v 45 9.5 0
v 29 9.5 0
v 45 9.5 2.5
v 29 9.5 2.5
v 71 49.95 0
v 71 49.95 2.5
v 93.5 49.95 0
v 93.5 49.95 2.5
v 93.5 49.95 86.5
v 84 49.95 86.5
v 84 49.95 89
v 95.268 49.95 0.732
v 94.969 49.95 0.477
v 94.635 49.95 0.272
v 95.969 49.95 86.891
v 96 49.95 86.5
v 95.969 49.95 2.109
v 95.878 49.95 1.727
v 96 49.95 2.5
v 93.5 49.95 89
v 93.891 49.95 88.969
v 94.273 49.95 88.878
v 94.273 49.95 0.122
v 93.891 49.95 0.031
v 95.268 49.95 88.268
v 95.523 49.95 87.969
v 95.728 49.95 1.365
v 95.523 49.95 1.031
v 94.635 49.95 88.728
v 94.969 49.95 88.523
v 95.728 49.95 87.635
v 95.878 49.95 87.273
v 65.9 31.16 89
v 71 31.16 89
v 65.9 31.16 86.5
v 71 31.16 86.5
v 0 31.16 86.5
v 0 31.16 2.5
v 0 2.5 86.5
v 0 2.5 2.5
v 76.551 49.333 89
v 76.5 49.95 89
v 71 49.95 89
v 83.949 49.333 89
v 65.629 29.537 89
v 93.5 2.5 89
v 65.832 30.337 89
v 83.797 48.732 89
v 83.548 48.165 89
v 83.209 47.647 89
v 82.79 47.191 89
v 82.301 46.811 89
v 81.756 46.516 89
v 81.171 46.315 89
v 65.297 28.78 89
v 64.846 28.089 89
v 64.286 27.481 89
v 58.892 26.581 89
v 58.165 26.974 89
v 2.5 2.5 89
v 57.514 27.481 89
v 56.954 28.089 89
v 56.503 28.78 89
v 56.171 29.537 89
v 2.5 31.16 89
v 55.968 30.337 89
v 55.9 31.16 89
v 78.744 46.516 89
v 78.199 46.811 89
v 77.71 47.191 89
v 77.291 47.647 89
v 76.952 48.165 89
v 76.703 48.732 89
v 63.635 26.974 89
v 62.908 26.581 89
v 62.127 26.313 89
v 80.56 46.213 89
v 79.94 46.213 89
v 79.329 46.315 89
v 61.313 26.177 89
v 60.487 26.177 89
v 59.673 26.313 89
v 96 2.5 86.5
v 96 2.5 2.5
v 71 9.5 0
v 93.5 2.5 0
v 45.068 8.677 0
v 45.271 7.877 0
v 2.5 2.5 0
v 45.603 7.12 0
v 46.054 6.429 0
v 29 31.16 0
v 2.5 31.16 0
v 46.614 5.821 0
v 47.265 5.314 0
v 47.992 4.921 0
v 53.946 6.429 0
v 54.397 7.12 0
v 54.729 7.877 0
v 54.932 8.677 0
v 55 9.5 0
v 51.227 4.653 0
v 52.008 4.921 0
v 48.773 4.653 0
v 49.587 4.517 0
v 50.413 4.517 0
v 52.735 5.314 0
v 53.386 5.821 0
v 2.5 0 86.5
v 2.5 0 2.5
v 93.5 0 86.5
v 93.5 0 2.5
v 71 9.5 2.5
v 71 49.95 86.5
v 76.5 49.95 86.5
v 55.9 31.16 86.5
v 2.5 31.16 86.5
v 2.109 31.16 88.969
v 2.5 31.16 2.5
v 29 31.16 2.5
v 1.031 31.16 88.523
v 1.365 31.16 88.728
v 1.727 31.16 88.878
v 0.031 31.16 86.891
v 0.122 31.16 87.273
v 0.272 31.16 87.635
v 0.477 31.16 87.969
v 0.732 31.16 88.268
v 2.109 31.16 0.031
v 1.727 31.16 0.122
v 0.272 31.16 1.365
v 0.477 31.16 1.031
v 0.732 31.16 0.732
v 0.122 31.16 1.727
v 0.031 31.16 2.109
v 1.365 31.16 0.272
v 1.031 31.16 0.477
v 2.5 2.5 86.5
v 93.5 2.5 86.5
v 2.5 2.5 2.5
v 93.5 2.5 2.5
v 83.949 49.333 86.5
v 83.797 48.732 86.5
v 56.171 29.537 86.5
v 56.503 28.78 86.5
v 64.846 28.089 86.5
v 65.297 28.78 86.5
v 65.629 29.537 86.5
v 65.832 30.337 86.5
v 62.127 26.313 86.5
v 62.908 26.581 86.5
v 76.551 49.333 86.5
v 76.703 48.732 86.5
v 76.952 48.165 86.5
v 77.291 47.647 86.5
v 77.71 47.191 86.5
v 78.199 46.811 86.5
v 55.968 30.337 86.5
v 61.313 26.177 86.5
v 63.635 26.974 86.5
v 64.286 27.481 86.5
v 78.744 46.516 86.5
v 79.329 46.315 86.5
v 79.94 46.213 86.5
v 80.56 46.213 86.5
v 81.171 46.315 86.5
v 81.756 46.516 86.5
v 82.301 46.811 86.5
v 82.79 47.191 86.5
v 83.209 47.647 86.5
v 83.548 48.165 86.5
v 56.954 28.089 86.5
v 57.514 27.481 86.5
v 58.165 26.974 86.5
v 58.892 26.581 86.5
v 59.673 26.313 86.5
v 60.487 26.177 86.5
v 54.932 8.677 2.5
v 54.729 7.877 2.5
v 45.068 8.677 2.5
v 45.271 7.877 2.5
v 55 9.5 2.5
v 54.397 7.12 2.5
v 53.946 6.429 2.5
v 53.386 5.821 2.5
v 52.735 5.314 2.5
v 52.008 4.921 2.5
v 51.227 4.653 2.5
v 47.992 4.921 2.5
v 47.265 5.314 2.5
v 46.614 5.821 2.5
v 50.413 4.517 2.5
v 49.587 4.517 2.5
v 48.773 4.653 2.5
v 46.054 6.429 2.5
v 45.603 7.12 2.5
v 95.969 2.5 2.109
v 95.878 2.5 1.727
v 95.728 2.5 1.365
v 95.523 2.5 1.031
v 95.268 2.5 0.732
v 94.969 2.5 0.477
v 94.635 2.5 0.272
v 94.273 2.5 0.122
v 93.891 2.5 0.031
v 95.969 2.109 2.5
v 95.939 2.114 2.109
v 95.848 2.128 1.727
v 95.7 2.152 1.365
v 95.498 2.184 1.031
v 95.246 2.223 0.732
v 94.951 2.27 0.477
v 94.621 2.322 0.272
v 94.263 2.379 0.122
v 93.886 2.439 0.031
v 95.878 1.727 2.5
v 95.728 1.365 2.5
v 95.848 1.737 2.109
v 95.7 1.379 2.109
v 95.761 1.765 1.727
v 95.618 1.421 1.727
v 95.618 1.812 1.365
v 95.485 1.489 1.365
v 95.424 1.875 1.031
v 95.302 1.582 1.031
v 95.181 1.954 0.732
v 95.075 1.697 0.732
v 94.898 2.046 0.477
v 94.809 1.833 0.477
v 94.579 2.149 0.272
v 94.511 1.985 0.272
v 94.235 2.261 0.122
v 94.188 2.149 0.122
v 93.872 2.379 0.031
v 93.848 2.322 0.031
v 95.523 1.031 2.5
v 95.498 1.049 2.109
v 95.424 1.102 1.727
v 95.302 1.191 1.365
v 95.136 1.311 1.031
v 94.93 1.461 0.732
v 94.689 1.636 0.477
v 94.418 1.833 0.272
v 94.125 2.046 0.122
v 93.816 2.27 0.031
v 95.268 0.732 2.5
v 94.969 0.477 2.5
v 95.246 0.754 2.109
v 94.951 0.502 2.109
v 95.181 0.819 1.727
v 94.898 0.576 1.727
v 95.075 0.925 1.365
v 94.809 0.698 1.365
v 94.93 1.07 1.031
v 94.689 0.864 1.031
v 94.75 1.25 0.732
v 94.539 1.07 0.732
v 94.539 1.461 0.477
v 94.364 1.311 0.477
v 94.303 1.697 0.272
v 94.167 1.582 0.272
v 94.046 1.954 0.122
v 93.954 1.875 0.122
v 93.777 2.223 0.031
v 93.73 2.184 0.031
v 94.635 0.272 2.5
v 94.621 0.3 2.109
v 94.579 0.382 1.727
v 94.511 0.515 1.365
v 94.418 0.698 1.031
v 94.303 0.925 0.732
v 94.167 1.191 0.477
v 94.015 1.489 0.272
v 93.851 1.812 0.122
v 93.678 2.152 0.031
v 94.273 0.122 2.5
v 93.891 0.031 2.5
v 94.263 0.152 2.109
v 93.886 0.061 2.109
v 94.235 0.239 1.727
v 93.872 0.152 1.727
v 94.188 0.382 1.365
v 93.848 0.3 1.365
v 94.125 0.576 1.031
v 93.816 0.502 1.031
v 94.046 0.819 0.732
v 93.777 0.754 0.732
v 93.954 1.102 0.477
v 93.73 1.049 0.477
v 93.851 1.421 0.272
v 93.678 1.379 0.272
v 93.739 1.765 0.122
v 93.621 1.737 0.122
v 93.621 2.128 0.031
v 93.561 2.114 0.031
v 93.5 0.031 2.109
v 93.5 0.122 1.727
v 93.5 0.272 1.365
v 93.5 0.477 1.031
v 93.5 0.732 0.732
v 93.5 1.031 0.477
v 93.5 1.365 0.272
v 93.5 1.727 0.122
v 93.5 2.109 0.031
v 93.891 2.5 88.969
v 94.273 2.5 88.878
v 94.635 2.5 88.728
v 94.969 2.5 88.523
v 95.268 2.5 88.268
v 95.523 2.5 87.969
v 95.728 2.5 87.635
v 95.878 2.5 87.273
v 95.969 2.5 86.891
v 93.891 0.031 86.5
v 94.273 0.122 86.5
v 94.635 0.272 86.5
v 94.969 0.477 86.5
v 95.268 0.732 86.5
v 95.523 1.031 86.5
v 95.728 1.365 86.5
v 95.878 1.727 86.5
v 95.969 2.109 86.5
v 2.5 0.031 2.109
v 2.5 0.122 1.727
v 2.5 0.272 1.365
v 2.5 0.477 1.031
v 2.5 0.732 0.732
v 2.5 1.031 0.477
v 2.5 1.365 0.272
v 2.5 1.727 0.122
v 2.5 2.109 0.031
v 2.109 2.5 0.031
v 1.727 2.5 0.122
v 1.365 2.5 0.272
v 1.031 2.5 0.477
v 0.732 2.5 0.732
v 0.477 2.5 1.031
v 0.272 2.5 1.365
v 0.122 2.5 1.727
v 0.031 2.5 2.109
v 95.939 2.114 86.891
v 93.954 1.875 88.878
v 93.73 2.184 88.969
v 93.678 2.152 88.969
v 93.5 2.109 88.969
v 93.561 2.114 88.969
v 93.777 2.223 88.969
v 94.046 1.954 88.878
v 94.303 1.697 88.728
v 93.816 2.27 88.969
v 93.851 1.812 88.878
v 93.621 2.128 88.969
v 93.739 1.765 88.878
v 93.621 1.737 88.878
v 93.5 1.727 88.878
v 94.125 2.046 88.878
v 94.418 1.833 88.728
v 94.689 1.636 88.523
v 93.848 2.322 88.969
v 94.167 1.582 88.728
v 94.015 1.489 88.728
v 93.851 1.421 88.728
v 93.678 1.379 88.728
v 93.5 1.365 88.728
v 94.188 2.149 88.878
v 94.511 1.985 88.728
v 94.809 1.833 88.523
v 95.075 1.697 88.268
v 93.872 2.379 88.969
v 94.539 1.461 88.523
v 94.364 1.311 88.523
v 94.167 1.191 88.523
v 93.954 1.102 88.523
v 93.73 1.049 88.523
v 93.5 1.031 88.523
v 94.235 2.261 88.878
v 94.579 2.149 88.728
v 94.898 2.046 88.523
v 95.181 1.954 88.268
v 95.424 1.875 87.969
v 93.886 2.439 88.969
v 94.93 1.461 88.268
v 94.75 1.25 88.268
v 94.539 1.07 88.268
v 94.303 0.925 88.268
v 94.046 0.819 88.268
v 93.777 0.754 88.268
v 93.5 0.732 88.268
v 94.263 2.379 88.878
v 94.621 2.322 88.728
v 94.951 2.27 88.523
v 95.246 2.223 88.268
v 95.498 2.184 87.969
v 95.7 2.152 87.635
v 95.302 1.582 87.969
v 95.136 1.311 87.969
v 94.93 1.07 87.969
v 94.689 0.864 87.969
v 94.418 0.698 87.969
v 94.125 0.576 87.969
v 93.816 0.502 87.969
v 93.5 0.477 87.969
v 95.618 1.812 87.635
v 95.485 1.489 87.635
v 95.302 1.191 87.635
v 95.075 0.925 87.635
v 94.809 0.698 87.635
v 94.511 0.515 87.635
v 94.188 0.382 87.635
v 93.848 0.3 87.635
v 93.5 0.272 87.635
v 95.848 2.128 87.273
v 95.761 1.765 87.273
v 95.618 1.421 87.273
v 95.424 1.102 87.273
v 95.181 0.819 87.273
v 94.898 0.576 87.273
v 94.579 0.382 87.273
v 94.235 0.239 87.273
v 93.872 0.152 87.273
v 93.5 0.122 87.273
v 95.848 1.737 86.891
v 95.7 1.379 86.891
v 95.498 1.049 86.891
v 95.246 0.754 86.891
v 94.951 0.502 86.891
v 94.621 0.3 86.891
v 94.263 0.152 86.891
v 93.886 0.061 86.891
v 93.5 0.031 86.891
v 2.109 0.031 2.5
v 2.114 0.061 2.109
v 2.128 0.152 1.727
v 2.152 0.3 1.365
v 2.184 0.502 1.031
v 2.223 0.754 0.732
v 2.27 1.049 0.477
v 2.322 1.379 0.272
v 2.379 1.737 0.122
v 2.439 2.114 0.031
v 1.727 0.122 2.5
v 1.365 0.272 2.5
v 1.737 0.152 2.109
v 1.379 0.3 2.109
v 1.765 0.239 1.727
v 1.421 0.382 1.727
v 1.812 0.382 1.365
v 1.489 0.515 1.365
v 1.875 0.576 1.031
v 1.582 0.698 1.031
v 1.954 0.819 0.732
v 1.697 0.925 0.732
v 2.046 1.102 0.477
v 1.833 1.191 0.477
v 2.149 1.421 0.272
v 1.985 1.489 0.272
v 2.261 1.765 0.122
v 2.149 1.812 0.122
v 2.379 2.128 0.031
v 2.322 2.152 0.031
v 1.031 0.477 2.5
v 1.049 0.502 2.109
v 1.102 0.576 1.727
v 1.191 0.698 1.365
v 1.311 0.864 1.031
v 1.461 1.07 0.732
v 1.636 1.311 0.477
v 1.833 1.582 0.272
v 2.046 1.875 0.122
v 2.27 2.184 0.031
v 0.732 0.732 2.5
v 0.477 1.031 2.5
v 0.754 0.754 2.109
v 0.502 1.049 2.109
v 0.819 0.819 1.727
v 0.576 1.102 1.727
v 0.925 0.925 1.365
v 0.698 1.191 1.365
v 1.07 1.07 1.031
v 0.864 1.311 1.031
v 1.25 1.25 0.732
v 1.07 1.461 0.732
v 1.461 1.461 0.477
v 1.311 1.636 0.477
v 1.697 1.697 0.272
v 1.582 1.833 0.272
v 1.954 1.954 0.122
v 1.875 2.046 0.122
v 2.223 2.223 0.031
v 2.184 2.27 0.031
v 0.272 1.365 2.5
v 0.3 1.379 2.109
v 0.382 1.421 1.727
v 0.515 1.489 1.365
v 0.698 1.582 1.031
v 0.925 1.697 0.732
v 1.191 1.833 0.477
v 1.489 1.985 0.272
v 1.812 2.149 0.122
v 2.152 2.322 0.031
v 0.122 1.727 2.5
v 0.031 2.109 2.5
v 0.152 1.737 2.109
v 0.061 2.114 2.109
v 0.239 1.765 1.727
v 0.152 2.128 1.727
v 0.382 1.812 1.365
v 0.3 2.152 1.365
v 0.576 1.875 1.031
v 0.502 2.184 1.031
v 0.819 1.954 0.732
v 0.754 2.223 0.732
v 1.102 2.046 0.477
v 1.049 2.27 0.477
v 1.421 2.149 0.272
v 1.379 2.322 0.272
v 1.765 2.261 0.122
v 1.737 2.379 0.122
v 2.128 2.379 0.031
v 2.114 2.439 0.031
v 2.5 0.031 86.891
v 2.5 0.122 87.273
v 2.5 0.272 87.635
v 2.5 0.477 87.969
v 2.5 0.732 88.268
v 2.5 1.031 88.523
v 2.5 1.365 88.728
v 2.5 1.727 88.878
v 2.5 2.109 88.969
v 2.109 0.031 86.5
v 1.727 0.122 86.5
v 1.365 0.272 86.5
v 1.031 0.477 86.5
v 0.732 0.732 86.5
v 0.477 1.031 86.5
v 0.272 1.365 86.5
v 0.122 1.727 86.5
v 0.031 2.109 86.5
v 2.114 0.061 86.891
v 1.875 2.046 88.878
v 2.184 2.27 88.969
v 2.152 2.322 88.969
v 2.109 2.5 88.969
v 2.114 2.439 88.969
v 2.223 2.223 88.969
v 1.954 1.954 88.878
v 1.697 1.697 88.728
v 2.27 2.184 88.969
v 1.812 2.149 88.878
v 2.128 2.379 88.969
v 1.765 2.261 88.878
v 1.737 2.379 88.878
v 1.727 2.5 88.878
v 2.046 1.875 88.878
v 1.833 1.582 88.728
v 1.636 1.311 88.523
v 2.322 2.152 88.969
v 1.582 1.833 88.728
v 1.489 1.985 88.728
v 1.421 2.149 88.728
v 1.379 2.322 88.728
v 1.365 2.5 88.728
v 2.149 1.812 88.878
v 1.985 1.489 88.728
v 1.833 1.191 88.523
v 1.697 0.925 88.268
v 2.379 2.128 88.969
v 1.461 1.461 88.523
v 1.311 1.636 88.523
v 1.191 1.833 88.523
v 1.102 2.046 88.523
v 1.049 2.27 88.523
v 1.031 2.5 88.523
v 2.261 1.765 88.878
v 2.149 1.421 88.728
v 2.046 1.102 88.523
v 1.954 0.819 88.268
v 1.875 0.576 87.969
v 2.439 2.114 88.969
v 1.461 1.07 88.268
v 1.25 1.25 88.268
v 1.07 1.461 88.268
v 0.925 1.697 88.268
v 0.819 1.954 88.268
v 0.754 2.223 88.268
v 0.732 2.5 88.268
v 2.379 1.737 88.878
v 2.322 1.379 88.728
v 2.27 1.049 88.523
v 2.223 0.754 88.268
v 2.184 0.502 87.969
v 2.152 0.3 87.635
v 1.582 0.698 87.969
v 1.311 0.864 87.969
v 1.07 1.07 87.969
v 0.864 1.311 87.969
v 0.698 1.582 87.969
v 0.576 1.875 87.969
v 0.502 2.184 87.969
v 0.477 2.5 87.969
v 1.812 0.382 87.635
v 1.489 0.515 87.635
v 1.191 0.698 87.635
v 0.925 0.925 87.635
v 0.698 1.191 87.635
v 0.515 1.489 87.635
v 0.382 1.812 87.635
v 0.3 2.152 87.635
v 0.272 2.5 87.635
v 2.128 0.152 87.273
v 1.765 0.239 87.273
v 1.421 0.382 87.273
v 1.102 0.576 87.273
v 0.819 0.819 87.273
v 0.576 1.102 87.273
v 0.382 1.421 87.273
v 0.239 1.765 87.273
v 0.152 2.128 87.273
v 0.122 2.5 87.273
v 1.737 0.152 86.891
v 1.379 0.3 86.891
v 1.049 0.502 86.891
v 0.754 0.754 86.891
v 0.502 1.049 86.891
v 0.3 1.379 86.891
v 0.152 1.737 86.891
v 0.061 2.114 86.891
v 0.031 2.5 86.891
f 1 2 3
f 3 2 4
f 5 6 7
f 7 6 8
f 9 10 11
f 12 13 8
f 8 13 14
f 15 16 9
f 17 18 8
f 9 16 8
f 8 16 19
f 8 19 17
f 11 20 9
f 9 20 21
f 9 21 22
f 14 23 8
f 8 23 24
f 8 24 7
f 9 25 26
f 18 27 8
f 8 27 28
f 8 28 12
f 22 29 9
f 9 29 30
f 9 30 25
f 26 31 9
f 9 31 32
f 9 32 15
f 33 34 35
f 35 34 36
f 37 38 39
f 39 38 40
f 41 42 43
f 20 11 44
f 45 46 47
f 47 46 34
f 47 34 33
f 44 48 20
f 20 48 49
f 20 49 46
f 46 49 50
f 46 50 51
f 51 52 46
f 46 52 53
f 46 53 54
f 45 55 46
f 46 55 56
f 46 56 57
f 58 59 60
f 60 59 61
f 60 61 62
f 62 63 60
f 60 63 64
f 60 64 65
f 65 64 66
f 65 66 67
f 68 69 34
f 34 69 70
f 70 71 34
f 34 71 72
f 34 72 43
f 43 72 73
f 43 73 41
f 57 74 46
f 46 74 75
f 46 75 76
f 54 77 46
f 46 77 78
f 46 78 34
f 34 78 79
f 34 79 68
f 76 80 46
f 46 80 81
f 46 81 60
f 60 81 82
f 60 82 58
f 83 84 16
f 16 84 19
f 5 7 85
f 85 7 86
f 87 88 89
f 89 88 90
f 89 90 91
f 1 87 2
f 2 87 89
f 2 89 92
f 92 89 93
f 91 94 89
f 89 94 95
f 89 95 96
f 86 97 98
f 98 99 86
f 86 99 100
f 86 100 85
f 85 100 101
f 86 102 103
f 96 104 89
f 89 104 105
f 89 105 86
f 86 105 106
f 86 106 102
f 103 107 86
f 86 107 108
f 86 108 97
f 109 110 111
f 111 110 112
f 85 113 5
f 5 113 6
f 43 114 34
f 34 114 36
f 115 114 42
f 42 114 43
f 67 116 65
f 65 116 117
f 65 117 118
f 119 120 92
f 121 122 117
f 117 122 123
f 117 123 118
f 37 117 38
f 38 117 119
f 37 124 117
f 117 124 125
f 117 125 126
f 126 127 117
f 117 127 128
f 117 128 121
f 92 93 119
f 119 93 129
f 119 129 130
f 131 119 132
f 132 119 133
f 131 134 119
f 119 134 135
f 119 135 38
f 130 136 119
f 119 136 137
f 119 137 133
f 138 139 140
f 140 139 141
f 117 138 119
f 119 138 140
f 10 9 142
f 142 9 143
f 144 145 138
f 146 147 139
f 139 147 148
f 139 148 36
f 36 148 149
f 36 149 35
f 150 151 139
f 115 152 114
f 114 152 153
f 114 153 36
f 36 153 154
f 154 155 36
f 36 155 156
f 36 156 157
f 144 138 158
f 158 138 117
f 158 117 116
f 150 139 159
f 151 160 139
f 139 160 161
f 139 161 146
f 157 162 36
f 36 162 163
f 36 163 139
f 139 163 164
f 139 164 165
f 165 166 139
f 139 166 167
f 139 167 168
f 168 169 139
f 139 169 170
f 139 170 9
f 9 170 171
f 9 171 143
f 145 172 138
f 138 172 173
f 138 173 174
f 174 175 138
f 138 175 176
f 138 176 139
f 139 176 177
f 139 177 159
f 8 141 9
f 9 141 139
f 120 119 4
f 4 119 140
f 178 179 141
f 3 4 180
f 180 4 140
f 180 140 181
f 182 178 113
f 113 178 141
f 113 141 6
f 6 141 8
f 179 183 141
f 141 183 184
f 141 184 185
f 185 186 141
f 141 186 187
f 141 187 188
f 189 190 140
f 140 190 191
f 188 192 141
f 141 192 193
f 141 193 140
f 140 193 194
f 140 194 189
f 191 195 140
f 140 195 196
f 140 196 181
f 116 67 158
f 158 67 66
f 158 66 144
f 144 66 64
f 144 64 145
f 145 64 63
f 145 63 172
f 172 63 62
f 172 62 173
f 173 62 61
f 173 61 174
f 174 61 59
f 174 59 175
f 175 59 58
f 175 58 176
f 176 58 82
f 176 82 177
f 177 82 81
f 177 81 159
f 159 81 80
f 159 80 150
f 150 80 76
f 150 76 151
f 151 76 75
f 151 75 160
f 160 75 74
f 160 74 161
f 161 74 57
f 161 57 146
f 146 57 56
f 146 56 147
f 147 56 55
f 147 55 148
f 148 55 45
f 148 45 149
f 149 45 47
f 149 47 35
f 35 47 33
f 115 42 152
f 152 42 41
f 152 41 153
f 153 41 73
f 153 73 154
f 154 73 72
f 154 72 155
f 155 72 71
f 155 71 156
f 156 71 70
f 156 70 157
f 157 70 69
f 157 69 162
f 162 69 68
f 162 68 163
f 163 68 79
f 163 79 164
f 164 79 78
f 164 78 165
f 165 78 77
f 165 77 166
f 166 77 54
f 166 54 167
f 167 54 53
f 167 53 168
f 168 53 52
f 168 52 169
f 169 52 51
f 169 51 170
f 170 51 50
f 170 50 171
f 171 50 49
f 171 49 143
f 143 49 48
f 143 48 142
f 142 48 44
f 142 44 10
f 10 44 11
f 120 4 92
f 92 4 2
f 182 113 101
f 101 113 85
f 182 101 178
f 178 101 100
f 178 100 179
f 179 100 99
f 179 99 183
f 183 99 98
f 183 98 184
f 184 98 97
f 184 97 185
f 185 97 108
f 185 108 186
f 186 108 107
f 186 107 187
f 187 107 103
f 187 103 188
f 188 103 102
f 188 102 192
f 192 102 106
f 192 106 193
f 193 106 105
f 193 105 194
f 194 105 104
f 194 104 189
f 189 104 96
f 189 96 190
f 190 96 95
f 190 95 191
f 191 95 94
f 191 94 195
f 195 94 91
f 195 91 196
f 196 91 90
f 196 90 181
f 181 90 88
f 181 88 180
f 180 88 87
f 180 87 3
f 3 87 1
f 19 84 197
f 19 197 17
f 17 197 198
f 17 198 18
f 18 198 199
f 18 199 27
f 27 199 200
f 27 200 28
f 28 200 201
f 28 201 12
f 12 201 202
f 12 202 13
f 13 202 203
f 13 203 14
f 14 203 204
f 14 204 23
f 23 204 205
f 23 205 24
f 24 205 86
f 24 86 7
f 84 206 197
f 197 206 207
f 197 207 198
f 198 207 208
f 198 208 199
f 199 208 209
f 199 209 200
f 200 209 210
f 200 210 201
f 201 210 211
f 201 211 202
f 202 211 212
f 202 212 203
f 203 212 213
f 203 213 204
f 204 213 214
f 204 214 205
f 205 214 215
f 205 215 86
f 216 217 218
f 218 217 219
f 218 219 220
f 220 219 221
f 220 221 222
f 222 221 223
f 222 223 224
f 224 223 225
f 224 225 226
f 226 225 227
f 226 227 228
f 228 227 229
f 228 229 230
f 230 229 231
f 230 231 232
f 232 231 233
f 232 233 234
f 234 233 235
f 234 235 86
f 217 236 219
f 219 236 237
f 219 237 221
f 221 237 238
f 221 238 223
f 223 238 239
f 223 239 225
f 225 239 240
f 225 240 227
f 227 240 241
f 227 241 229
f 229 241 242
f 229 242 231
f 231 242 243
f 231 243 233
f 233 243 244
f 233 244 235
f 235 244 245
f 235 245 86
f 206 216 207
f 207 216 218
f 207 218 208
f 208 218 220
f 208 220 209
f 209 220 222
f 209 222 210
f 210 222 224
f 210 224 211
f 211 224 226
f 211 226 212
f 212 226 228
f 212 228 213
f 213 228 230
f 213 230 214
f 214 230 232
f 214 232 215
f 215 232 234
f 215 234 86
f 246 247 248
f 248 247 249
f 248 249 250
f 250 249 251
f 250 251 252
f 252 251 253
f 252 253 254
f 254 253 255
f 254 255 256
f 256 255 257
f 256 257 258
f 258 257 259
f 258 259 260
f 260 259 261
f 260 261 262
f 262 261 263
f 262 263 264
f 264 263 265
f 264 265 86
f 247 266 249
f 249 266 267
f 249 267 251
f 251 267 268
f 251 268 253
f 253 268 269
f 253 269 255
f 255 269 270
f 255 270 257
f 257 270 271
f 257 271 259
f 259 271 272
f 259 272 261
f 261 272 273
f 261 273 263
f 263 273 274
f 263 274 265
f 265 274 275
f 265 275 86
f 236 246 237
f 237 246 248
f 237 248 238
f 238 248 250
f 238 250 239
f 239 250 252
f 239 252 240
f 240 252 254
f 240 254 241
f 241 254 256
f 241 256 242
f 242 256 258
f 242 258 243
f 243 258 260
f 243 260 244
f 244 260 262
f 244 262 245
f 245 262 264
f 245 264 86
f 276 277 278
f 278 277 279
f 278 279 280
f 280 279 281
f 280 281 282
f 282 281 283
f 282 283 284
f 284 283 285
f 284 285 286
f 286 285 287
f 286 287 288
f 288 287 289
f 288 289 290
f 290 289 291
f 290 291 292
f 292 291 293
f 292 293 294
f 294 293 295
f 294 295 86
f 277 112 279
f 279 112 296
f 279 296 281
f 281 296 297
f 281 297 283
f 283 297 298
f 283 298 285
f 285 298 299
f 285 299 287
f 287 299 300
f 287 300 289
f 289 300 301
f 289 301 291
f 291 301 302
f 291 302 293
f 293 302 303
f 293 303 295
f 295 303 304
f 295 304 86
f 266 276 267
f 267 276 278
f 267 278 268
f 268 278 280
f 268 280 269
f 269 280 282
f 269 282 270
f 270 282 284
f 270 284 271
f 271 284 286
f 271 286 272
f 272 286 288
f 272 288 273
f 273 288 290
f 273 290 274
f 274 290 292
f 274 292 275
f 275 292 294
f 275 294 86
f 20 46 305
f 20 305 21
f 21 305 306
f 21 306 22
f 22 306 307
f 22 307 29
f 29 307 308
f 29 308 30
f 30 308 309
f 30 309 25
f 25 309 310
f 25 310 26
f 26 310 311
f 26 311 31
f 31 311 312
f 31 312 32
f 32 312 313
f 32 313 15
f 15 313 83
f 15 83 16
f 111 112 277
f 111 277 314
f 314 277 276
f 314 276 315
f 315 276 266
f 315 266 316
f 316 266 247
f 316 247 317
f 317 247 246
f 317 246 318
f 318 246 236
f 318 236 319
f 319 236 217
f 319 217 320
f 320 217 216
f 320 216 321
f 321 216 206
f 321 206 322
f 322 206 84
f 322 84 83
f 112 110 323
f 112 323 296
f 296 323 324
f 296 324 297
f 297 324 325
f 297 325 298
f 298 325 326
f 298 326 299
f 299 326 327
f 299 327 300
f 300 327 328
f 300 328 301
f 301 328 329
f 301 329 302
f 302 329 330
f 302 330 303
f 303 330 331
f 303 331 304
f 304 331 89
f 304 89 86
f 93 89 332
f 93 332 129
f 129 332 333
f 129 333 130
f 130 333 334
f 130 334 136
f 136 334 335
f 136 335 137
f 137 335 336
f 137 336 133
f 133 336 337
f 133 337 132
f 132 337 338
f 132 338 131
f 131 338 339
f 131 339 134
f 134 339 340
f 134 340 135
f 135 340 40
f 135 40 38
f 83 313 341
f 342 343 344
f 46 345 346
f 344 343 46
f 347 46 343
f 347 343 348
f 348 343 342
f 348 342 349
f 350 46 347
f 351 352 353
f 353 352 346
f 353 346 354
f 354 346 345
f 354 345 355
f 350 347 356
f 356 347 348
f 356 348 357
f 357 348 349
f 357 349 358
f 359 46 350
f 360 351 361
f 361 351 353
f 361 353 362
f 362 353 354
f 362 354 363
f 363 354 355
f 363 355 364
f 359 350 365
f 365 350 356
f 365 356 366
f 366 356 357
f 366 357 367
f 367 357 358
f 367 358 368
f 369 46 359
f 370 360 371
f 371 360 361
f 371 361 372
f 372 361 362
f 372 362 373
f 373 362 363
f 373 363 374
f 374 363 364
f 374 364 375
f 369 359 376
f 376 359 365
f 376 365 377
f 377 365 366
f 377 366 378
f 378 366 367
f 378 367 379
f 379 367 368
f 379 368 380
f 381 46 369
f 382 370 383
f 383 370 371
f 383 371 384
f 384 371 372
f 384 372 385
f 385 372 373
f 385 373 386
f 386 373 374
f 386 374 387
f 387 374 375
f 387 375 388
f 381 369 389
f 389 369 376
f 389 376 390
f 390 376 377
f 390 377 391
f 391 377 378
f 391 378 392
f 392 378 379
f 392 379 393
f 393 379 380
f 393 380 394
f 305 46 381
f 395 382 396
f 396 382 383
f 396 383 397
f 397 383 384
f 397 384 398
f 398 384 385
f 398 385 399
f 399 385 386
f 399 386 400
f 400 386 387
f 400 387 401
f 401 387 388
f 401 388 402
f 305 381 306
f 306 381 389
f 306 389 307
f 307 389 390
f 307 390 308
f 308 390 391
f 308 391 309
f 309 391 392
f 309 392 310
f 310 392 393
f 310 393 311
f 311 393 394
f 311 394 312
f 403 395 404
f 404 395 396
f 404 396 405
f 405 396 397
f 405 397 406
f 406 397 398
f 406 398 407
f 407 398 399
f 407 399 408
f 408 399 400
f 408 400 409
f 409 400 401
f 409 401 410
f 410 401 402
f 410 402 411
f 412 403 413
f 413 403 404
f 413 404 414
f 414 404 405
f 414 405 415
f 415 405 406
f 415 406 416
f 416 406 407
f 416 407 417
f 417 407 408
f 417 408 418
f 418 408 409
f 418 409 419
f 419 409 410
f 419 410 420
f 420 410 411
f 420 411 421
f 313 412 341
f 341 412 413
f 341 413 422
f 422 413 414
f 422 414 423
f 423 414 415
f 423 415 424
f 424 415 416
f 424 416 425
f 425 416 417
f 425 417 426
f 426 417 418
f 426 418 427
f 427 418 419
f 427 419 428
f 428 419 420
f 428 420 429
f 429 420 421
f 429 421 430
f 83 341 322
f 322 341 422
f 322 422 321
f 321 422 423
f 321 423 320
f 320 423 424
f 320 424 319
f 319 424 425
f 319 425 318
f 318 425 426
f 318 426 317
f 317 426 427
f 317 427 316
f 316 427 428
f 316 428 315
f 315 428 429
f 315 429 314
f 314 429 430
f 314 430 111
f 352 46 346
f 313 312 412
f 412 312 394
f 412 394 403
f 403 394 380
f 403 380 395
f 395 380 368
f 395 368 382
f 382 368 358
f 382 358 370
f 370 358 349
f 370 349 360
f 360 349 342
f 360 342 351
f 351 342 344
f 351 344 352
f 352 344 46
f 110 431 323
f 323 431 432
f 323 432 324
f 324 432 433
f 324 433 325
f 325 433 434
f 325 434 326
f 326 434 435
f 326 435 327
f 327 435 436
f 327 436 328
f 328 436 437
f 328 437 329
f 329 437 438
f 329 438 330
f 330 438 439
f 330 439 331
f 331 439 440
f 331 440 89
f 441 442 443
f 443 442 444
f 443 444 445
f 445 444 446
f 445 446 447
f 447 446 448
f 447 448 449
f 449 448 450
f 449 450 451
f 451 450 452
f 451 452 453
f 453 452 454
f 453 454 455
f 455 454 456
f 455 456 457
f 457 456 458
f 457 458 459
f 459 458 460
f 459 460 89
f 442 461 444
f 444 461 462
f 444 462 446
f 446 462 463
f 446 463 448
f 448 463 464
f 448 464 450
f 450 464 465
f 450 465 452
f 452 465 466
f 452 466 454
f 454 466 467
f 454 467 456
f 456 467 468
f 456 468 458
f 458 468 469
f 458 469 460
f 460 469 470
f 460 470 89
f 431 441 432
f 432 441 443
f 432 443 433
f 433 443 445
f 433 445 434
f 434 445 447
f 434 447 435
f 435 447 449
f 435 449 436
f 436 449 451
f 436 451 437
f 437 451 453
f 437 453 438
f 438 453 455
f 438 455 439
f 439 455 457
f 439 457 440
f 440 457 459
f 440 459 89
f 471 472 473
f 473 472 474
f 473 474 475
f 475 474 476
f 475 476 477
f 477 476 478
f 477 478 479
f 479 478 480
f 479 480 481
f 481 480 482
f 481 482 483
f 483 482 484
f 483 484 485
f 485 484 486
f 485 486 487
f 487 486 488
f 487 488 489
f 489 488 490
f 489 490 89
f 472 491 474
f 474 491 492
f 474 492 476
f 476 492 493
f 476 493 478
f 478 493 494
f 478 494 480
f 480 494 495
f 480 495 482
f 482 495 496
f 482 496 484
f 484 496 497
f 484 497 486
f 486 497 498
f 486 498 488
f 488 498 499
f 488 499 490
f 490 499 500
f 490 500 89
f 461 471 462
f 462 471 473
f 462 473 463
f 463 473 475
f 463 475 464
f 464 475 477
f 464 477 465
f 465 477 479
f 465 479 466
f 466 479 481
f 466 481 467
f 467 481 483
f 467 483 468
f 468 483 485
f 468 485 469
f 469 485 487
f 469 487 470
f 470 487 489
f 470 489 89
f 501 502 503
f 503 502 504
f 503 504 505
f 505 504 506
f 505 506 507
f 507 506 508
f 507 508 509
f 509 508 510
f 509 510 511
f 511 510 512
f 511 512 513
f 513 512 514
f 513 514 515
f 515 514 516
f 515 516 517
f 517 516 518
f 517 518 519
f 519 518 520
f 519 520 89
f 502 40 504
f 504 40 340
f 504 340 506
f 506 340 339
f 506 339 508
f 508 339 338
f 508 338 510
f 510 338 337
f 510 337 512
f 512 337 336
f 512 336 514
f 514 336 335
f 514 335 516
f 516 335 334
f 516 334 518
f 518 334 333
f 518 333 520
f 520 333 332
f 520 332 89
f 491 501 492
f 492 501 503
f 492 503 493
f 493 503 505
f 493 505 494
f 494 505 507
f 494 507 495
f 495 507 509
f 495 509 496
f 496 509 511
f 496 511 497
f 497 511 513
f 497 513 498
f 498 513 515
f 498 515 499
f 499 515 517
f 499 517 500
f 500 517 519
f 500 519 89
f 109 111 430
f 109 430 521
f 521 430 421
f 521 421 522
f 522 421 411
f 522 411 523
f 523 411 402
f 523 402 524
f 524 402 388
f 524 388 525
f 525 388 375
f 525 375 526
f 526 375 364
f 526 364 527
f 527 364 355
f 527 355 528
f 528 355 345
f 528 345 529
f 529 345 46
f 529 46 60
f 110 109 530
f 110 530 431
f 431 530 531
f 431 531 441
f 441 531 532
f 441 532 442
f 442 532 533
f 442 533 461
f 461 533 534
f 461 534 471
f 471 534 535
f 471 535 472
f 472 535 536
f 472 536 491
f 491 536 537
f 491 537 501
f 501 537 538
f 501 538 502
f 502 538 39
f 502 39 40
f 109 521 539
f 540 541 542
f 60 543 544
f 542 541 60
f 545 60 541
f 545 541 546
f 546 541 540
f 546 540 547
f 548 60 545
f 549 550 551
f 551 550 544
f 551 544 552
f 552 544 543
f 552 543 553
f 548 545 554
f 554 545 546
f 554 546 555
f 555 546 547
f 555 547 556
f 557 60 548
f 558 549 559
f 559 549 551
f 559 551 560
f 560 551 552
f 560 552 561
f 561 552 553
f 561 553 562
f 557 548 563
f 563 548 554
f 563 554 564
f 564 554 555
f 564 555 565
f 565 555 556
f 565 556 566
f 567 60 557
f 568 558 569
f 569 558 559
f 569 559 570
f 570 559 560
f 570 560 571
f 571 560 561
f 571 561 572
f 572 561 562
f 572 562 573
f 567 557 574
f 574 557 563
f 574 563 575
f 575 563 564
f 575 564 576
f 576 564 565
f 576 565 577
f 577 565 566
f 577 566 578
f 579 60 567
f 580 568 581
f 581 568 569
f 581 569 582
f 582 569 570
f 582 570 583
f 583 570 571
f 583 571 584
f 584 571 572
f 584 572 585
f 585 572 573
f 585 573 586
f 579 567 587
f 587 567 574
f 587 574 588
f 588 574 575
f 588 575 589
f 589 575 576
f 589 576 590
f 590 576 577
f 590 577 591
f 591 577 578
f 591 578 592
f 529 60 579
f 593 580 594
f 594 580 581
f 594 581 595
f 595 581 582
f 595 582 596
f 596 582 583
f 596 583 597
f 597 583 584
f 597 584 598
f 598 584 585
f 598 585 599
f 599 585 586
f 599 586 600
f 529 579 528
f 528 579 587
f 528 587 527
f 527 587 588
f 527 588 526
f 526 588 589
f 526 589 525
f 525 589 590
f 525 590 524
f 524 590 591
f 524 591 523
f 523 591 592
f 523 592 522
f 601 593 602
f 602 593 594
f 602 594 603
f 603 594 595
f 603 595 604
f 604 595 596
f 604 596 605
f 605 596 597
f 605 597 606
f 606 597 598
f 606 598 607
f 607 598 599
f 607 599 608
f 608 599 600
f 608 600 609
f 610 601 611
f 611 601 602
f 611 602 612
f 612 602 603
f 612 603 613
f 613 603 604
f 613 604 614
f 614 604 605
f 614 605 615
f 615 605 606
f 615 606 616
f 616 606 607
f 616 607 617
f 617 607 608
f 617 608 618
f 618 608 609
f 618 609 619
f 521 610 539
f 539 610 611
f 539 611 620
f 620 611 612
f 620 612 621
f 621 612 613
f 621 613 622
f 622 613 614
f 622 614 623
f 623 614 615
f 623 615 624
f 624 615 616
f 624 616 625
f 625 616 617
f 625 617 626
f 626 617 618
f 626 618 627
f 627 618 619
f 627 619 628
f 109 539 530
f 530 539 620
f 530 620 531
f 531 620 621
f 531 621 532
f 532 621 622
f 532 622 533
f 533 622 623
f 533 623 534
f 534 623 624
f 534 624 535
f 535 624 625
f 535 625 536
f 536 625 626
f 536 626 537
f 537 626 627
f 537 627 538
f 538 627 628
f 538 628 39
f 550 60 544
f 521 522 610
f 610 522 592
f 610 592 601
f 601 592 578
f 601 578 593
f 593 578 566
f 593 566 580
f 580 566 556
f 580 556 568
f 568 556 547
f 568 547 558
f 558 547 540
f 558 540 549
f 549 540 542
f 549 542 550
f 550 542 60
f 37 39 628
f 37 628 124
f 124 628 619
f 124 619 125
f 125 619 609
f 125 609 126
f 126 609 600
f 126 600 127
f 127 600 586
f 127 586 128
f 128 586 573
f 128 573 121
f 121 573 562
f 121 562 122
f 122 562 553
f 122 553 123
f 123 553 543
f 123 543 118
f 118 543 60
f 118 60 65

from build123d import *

# Parameters (mm, degrees)
SKETCH1_W           = 96
SKETCH1_H           = 89
BOSS_EXTRUDE1_DEPTH = 72.5
SKETCH3_W           = 91
SKETCH3_H           = 84
CUT_EXTRUDE1_DEPTH  = 70
CUT_EXTRUDE5_DEPTH  = 90
SKETCH7_R           = 3.75
SKETCH7_R_2         = 5
CUT_EXTRUDE6_DEPTH  = 2.5
SKETCH8_W           = 42
SKETCH8_H           = 21.66
CUT_EXTRUDE7_DEPTH  = 2.5
CUT_EXTRUDE8_DEPTH  = 2.5
FILLET1_R           = 2.5


with BuildPart() as part:
    # Sketch1 → Boss-Extrude1 (new body)
    with BuildSketch(Plane(origin=(0, 0, 0), x_dir=(1, 0, 0), z_dir=(0, 1, 0))):
        with Locations((48, -44.5)):
            Rectangle(SKETCH1_W, SKETCH1_H)
    extrude(amount=BOSS_EXTRUDE1_DEPTH)

    # Sketch3 → Cut-Extrude1 (cut)
    with BuildSketch(Plane(origin=(0, 72.5, 0), x_dir=(1, 0, 0), z_dir=(0, 1, 0))):
        with Locations((48, -44.5)):
            Rectangle(SKETCH3_W, SKETCH3_H)
    extrude(amount=-CUT_EXTRUDE1_DEPTH, mode=Mode.SUBTRACT)

    # Sketch5 → Cut-Extrude5 (cut, through all)
    with BuildSketch(Plane.XY.offset(89)):
        Polygon((0, 31.16), (0, 72.5), (96, 72.5), (96, 49.95), (80.25, 49.95), (71, 49.95), (71, 31.16), align=None)
    extrude(amount=-CUT_EXTRUDE5_DEPTH, mode=Mode.SUBTRACT)

    # Sketch7 → Cut-Extrude6 (cut)
    with BuildSketch(Plane.XY.offset(89)):
        with Locations((80.25, 49.95)):
            Circle(SKETCH7_R)
        with Locations((60.9, 31.16)):
            Circle(SKETCH7_R_2)
    extrude(amount=-CUT_EXTRUDE6_DEPTH, mode=Mode.SUBTRACT)

    # Sketch8 → Cut-Extrude7 (cut)
    with BuildSketch(Plane(origin=(0, 0, 0), x_dir=(-1, 0, 0), z_dir=(0, 0, -1))):
        with Locations((-50, 20.33)):
            Rectangle(SKETCH8_W, SKETCH8_H)
    extrude(amount=-CUT_EXTRUDE7_DEPTH, mode=Mode.SUBTRACT)

    # Sketch9 → Cut-Extrude8 (cut)
    with BuildSketch(Plane(origin=(0, 0, 0), x_dir=(-1, 0, 0), z_dir=(0, 0, -1))):
        with BuildLine():
            Line((-55, 9.5), (-45, 9.5))
            ThreePointArc((-45, 9.5), (-50, 4.5), (-55, 9.5))
        make_face()
    extrude(amount=-CUT_EXTRUDE8_DEPTH, mode=Mode.SUBTRACT)

    # Fillet1
    fillet1_edges = [part.edges().sort_by_distance(p)[0] for p in [
        (0, 15.58, 0),
        (96, 24.975, 0),
        (96, 24.975, 89),
        (0, 15.58, 89),
        (48, 0, 0),
        (96, 0, 44.5),
        (48, 0, 89),
        (0, 0, 44.5),
    ]]
    fillet(fillet1_edges, radius=FILLET1_R)


solid = part.part
